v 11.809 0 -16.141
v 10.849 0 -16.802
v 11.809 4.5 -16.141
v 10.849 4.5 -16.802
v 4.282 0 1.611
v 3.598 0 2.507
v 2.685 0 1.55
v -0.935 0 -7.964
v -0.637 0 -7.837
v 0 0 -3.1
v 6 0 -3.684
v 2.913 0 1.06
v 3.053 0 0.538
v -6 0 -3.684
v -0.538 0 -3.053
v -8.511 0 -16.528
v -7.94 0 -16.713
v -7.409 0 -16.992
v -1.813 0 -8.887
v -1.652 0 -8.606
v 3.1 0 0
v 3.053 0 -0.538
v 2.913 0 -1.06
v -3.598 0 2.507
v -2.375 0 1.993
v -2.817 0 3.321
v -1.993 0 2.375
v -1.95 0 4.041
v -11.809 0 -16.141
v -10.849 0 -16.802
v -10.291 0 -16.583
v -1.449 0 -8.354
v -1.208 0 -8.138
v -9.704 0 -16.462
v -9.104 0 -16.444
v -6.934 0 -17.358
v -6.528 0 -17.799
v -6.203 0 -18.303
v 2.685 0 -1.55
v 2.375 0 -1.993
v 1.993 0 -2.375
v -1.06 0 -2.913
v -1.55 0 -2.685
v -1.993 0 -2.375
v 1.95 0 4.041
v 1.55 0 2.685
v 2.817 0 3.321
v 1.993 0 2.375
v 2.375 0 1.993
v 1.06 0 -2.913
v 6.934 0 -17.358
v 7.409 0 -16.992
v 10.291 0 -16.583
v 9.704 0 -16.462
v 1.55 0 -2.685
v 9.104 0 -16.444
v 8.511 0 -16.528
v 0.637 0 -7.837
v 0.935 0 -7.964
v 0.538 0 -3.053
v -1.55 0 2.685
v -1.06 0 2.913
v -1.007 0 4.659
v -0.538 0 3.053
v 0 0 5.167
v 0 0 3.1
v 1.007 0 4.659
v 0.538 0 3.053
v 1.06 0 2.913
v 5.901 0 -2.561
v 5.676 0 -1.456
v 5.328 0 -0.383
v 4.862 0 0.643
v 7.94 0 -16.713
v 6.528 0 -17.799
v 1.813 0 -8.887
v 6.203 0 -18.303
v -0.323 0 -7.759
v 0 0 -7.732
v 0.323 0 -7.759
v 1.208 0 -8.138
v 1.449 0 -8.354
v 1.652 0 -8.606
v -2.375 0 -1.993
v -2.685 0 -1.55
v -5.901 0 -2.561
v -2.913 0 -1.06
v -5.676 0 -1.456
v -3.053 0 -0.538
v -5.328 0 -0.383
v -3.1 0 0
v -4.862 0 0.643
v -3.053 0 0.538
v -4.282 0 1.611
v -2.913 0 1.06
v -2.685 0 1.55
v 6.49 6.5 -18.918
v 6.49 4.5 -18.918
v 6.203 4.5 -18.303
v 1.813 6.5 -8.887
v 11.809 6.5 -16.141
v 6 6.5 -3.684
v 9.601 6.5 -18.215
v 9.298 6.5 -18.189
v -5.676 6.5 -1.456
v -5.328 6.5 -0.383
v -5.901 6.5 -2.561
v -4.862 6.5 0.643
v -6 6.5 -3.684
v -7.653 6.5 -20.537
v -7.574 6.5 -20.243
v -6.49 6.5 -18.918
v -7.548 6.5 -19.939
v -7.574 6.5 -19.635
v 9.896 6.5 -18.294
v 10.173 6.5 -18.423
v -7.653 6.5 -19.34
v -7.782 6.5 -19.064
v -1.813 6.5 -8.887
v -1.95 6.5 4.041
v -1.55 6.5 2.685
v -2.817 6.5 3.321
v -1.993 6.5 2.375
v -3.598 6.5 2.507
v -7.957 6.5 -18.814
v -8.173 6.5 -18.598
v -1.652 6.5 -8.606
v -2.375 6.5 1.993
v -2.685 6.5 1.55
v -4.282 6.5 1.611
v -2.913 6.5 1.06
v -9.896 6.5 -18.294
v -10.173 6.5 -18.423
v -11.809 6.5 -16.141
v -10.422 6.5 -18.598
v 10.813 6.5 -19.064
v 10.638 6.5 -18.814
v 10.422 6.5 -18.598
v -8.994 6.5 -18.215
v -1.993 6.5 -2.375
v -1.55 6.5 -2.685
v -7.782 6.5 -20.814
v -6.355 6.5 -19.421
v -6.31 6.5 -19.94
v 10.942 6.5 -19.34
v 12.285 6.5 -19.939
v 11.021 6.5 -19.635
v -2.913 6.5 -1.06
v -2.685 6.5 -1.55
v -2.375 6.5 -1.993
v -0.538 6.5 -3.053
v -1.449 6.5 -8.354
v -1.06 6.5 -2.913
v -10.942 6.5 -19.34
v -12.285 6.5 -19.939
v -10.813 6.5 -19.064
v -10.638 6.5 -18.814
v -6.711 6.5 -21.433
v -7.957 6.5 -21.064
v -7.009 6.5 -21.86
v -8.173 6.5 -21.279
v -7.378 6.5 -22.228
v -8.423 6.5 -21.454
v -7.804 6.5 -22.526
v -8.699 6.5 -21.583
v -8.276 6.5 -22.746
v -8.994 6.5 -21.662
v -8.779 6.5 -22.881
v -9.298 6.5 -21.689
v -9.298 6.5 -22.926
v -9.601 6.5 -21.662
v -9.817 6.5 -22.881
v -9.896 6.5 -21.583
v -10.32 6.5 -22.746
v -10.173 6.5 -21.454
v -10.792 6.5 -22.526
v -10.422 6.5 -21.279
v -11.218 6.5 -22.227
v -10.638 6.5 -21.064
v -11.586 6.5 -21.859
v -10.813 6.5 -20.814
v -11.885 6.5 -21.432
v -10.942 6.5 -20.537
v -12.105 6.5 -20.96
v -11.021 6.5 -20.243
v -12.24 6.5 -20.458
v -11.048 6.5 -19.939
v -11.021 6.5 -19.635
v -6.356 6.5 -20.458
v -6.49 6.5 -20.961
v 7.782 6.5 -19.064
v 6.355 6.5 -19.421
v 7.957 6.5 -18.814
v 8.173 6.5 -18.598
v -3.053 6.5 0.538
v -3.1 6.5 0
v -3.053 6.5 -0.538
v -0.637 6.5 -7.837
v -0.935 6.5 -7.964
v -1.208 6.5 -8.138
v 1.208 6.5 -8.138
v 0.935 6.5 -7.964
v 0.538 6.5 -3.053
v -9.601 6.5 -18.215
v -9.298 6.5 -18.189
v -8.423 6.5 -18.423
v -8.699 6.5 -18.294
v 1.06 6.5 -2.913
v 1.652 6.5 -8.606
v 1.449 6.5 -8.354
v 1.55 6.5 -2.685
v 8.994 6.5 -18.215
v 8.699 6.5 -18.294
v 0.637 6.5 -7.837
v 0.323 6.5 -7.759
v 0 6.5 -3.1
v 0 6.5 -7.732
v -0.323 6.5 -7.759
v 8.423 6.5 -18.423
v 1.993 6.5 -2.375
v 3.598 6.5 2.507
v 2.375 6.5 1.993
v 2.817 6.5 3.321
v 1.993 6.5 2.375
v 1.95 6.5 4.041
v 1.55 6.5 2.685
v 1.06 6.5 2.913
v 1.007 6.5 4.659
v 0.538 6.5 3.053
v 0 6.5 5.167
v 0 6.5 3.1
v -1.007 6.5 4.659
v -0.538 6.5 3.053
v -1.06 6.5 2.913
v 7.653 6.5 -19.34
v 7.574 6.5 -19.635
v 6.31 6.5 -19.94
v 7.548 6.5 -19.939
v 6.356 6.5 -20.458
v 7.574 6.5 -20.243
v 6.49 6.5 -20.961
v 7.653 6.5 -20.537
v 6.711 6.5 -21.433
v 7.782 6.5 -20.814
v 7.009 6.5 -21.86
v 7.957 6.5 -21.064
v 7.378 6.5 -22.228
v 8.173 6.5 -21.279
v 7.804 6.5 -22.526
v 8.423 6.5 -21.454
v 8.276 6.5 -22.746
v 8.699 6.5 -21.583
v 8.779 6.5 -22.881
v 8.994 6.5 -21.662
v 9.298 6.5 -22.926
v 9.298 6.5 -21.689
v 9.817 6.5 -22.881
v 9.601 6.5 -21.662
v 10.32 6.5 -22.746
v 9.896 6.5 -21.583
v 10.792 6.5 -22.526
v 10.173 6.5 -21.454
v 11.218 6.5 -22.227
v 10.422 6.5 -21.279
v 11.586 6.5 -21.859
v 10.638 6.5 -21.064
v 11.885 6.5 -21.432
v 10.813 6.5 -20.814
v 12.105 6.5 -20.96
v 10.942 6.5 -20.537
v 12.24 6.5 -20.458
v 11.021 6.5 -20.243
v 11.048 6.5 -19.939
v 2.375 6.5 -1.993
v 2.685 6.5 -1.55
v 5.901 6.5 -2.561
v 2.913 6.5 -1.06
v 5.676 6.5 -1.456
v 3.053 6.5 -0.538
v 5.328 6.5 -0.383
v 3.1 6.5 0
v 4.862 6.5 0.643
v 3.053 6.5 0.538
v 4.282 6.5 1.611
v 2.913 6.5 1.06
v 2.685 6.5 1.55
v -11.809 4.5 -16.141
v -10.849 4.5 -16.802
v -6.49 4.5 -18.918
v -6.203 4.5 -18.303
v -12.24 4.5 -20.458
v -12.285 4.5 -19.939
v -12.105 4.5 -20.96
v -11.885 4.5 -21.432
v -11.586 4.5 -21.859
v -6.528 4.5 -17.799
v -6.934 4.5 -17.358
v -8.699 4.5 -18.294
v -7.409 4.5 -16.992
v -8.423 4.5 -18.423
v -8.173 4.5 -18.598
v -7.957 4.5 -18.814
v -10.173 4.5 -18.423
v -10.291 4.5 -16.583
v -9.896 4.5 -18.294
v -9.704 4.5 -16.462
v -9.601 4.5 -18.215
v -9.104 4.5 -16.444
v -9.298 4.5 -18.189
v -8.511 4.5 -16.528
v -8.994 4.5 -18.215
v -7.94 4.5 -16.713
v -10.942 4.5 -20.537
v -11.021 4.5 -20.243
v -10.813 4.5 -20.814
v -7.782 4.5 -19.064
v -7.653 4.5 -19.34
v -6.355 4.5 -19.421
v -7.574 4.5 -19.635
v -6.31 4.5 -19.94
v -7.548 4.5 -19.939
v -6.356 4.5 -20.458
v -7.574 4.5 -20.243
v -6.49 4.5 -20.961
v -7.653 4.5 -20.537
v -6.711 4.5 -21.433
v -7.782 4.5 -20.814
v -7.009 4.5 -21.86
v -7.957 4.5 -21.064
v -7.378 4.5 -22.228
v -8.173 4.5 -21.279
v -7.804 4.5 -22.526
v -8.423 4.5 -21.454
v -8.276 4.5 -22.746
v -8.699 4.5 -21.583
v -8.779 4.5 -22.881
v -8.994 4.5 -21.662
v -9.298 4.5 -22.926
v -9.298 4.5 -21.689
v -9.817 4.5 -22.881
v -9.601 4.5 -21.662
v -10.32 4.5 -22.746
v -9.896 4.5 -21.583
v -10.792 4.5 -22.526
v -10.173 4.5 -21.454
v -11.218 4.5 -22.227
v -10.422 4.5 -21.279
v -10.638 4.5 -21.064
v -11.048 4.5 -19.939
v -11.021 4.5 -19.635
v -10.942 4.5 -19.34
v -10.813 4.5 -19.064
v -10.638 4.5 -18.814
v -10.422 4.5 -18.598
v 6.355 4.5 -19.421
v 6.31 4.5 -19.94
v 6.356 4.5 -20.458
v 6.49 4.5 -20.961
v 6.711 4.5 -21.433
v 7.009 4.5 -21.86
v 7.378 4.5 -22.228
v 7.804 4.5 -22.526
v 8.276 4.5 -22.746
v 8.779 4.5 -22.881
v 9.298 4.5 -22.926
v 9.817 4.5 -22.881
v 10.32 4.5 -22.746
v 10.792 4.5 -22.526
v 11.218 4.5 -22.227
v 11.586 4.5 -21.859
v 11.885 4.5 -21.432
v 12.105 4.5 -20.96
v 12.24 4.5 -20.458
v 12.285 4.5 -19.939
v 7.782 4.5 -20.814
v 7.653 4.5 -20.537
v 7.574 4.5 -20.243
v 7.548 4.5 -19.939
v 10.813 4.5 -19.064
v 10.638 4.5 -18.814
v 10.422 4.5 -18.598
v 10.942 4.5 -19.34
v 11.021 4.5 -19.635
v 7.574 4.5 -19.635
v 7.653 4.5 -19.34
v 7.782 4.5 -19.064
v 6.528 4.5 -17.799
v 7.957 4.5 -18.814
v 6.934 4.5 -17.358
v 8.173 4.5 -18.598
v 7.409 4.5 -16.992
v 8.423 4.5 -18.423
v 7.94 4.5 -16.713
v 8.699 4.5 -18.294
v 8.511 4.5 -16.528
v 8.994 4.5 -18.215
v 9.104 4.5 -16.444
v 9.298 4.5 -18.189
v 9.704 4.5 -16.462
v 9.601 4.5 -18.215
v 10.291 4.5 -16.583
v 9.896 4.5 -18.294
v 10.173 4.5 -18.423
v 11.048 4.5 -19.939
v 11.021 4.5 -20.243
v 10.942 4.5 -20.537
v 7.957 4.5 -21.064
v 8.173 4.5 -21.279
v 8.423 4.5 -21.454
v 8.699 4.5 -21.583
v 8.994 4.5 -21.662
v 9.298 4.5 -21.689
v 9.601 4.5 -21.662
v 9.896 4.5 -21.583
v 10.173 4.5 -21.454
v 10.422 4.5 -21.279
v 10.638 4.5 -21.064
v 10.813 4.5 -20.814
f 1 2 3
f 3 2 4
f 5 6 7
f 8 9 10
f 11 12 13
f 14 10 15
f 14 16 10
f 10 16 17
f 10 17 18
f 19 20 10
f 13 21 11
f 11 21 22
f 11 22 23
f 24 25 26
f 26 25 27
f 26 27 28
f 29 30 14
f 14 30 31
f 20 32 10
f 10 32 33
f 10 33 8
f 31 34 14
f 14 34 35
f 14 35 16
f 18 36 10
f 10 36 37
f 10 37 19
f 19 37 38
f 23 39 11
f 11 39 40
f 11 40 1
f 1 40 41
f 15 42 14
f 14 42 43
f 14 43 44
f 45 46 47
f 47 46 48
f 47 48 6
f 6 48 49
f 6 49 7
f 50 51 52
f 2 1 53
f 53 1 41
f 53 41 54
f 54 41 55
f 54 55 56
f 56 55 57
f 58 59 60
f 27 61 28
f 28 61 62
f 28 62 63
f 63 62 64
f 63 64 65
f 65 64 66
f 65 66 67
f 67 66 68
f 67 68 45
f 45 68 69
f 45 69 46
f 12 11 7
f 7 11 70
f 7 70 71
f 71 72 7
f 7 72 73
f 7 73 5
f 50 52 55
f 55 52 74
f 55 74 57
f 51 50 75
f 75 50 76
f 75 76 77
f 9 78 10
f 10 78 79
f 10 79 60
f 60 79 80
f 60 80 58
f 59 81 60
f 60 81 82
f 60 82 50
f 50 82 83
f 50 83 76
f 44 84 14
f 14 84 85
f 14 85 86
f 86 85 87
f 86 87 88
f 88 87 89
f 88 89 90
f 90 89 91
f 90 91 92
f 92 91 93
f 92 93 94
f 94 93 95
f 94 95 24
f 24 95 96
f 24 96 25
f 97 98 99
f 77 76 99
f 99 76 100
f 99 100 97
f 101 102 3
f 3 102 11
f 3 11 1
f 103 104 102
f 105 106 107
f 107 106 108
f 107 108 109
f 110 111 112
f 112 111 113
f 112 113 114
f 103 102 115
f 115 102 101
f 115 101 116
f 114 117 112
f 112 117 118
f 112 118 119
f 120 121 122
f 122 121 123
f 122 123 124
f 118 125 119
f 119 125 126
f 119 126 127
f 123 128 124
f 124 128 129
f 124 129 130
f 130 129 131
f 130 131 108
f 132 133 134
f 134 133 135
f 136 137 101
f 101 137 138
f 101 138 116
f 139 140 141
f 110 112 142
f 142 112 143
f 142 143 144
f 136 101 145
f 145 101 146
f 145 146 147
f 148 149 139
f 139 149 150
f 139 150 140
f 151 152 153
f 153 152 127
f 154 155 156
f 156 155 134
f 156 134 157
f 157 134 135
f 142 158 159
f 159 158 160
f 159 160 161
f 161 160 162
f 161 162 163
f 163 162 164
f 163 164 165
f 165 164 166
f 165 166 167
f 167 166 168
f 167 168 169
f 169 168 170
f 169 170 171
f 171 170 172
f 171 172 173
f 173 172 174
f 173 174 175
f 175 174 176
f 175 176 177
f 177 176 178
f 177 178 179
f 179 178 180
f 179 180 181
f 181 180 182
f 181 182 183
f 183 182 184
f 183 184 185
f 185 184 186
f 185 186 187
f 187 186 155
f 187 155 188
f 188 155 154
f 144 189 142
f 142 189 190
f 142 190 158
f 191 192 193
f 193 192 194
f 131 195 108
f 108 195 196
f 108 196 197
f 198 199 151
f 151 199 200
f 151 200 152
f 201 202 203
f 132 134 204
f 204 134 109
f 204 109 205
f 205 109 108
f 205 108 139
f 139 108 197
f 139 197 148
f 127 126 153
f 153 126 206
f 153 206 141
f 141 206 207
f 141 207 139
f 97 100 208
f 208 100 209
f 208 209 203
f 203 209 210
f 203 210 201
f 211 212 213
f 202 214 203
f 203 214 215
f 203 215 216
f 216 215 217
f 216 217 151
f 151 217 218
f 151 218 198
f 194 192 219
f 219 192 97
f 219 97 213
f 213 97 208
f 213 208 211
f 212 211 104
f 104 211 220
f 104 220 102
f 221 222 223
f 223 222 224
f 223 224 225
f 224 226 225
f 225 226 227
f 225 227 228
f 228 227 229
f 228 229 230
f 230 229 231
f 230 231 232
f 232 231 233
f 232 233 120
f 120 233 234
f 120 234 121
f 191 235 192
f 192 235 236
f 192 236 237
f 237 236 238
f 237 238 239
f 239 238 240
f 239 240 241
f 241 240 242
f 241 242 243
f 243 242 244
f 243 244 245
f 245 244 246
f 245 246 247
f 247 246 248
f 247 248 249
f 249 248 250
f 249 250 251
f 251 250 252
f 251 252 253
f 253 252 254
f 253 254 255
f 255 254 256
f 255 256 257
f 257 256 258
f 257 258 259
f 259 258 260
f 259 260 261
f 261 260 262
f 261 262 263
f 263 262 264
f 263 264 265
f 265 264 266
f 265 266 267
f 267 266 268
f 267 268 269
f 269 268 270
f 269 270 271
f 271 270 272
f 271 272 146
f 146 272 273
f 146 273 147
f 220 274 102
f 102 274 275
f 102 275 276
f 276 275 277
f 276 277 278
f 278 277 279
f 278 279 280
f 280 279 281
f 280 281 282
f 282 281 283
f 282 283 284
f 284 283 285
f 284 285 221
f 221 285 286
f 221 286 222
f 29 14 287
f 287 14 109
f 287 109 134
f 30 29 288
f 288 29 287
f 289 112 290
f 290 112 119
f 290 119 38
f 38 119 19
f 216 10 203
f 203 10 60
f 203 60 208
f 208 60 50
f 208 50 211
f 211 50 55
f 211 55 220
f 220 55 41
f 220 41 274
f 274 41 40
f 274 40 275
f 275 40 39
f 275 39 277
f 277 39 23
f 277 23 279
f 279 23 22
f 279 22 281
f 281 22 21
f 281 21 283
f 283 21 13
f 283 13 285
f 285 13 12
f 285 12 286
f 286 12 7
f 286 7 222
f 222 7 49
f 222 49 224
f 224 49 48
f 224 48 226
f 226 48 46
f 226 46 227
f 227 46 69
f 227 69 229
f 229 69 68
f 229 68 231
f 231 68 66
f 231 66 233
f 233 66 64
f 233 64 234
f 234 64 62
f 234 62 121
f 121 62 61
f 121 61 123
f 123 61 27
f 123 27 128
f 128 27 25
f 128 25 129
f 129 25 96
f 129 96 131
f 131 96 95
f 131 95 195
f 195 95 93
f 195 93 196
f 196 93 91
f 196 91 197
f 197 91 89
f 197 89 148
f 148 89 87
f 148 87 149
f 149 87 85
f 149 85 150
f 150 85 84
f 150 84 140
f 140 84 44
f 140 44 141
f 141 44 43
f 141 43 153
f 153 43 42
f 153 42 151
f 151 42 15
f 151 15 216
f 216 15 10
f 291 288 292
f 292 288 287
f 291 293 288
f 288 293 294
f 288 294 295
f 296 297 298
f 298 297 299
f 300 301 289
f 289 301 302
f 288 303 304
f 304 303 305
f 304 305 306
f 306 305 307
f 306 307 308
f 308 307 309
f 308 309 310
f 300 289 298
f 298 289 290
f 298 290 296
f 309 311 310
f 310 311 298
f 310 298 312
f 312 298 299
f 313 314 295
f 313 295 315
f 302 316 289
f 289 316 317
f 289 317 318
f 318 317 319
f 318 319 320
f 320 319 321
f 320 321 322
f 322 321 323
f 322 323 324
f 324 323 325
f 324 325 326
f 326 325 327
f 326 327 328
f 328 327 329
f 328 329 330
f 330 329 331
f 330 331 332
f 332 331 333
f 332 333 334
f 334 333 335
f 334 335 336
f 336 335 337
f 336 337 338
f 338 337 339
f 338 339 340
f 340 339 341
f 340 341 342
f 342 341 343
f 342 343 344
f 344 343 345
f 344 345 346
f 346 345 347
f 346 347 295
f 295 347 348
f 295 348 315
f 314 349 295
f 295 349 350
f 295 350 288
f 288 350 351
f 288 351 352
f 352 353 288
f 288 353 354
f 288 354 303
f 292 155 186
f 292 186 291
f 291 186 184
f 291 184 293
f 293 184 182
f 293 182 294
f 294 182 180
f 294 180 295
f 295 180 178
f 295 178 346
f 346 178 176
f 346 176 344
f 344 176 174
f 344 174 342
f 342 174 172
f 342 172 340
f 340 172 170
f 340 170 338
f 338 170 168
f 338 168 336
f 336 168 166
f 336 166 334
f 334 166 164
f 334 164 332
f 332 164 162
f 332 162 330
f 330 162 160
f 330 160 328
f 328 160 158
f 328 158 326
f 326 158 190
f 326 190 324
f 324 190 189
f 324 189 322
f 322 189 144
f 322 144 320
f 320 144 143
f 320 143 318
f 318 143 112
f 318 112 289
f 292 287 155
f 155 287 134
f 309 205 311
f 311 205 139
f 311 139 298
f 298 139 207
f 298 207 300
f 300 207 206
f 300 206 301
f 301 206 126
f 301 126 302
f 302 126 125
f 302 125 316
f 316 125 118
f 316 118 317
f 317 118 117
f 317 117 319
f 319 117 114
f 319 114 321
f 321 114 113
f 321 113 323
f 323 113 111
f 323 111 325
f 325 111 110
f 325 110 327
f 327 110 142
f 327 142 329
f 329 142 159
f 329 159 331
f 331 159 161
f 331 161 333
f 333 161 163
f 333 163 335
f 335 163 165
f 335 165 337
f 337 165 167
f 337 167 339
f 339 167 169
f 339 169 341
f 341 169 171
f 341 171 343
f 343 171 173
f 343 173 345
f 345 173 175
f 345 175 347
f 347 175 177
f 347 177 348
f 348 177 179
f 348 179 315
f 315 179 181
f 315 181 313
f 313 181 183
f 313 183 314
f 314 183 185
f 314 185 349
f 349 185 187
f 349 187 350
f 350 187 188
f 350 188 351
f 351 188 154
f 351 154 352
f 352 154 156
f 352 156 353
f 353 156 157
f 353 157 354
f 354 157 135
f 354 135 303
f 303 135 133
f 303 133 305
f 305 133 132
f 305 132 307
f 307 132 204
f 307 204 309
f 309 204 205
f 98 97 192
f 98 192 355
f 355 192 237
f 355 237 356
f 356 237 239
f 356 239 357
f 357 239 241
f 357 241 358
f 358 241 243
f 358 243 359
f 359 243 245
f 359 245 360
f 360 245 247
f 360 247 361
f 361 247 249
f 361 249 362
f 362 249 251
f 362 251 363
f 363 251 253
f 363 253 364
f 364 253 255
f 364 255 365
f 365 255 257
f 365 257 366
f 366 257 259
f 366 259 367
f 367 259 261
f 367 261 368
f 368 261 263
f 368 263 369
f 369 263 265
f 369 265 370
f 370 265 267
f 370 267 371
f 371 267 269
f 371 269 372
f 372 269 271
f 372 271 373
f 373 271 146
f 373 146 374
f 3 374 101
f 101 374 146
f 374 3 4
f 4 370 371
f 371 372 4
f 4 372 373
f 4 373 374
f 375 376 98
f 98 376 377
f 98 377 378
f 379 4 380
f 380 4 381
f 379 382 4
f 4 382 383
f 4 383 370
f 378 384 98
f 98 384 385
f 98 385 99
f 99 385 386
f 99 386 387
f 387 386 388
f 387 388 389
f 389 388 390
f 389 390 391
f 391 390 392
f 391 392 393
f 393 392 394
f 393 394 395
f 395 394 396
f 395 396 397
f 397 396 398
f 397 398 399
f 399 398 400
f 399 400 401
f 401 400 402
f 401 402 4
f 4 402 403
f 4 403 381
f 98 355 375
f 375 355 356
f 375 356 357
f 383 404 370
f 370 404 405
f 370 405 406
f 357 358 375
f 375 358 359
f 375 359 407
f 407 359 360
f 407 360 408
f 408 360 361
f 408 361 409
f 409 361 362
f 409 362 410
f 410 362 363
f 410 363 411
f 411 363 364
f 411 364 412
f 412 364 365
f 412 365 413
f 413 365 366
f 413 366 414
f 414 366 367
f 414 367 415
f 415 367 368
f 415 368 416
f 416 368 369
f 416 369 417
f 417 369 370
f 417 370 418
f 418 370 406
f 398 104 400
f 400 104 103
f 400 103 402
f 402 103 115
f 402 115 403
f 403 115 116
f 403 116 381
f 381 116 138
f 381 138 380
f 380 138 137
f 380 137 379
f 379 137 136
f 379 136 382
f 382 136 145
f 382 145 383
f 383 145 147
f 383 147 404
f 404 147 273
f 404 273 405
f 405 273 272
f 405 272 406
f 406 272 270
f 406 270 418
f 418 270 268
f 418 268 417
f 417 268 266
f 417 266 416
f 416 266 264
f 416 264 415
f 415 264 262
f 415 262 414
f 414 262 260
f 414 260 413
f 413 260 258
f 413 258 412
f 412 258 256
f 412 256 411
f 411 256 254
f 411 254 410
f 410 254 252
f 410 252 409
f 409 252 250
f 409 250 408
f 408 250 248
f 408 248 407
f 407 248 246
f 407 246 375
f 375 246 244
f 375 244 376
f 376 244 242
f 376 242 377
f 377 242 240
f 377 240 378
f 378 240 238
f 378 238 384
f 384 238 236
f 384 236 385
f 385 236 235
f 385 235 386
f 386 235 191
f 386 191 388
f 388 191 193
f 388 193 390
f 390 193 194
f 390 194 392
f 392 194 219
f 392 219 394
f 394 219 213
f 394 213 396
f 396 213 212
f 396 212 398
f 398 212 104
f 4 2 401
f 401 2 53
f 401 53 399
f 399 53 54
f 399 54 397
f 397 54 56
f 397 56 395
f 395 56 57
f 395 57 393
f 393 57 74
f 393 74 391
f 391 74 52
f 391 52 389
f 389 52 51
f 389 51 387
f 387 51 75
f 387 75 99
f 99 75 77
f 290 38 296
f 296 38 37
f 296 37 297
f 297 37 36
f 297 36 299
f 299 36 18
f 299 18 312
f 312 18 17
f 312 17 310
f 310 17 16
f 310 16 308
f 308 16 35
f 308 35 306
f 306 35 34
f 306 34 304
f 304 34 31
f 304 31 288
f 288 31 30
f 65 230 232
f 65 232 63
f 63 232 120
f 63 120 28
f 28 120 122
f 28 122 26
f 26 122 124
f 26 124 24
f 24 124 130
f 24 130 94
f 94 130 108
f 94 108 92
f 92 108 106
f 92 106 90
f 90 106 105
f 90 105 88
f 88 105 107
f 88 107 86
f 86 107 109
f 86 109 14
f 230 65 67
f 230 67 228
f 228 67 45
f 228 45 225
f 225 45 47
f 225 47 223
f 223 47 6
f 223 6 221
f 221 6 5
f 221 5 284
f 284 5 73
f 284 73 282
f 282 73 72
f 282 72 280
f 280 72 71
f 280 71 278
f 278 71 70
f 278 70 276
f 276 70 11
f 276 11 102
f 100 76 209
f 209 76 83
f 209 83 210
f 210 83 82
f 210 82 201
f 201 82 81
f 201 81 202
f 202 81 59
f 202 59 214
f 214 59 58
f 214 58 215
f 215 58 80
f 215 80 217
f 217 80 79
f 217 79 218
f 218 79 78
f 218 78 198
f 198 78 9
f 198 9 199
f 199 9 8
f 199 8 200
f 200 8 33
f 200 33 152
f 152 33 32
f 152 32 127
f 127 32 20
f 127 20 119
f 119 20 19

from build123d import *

# Parameters (mm, degrees)
BOSS_EXTRUDE1_DEPTH = 6.5
SKETCH2_R           = 3.1
CUT_EXTRUDE1_DEPTH  = 24.228931445
SKETCH3_R           = 1.75
BOSS_EXTRUDE2_DEPTH = 2
CUT_EXTRUDE2_DEPTH  = 4.5
FILLET1_R           = 10
FILLET2_R           = 2


with BuildPart() as part:
    # Sketch1 → Boss-Extrude1 (new body)
    with BuildSketch(Plane(origin=(0, 0, 0), x_dir=(1, 0, 0), z_dir=(0, 1, 0))):
        with BuildLine():
            Line((-6.489945331, 18.917732676), (0, 5))
            Line((0, 5), (6.489945331, 18.917732676))
            ThreePointArc((6.489945331, 18.917732676), (9.254177969, 17.730205586), (11.809007007, 16.141479285))
            Line((11.809007007, 16.141479285), (6, 3.684023558))
            Line((6, 3.684023558), (6, -6))
            Line((6, -6), (-6, -6))
            Line((-6, -6), (-6, 3.684023558))
            Line((-6, 3.684023558), (-11.809007007, 16.141479285))
            ThreePointArc((-11.809007007, 16.141479285), (-9.254177969, 17.730205586), (-6.489945331, 18.917732676))
        make_face()
    extrude(amount=BOSS_EXTRUDE1_DEPTH)

    # Sketch2 → Cut-Extrude1 (cut, through all)
    with BuildSketch(Plane.XZ):
        with Locations(Location((0, 0, 0), (0, 0, 270))):
            Circle(SKETCH2_R)
    extrude(amount=-CUT_EXTRUDE1_DEPTH, mode=Mode.SUBTRACT)

    # Sketch3 → Boss-Extrude2 (add)
    # profile 1 of 2: a face of its own
    with BuildSketch(Plane(origin=(0, 6.5, 0), x_dir=(1, 0, 0), z_dir=(0, 1, 0))):
        with BuildLine():
            Line((12.285151677, 19.938771315), (11.809007007, 16.141479285))
            Line((11.809007007, 16.141479285), (8.152317162, 17.179463846))
            ThreePointArc((8.152317162, 17.179463846), (7.638707607, 22.42342918), (12.285151677, 19.938771315))
        make_face()
        with Locations(Location((9.297601758, 19.938771315, 0), (0, 0, 270))):
            Circle(SKETCH3_R, mode=Mode.SUBTRACT)
    # profile 2 of 2: a face of its own
    with BuildSketch(Plane(origin=(0, 6.5, 0), x_dir=(1, 0, 0), z_dir=(0, 1, 0))):
        with BuildLine():
            Line((-11.809007007, 16.141479285), (-8.152317162, 17.179463846))
            ThreePointArc((-8.152317162, 17.179463846), (-7.638707607, 22.42342918), (-12.285151677, 19.938771315))
            Line((-12.285151677, 19.938771315), (-11.809007007, 16.141479285))
        make_face()
        with Locations(Location((-9.297601758, 19.938771315, 0), (0, 0, 90))):
            Circle(SKETCH3_R, mode=Mode.SUBTRACT)
    extrude(amount=-BOSS_EXTRUDE2_DEPTH)

    # Sketch5 → Cut-Extrude2 (cut)
    with BuildSketch(Plane.XZ):
        with BuildLine():
            ThreePointArc((10.849326324, -16.801551069), (8.221259471, -16.608382857), (6.203329268, -18.303082545))
            Line((6.203329268, -18.303082545), (6.489945331, -18.917732676))
            ThreePointArc((6.489945331, -18.917732676), (8.733964823, -17.992161028), (10.849326324, -16.801551069))
        make_face()
        with BuildLine():
            Line((6.489945331, -18.917732676), (6.203329268, -18.303082545))
            ThreePointArc((6.203329268, -18.303082545), (8.454973049, -23.335825459), (12.797601758, -19.938771315))
            ThreePointArc((12.797601758, -19.938771315), (12.270902616, -18.092293043), (10.849326324, -16.801551069))
            ThreePointArc((10.849326324, -16.801551069), (8.733964823, -17.992161028), (6.489945331, -18.917732676))
        make_face()
        with BuildLine():
            ThreePointArc((-10.849326324, -16.801551069), (-11.144080031, -22.912072172), (-5.797601758, -19.938771315))
            ThreePointArc((-5.797601758, -19.938771315), (-5.900547614, -19.096142606), (-6.203329268, -18.303082545))
            Line((-6.203329268, -18.303082545), (-6.489945331, -18.917732676))
            ThreePointArc((-6.489945331, -18.917732676), (-8.733964823, -17.992161028), (-10.849326324, -16.801551069))
        make_face()
        with BuildLine():
            Line((-6.489945331, -18.917732676), (-6.203329268, -18.303082545))
            ThreePointArc((-6.203329268, -18.303082545), (-8.221259471, -16.608382857), (-10.849326324, -16.801551069))
            ThreePointArc((-10.849326324, -16.801551069), (-8.733964823, -17.992161028), (-6.489945331, -18.917732676))
        make_face()
    extrude(amount=-CUT_EXTRUDE2_DEPTH, mode=Mode.SUBTRACT)

    # Fillet1
    # the kernel refuses this fillet: 10 mm, written as the material it takes off along each edge
    with BuildSketch(Plane(origin=(6, -24.987516744, 6), x_dir=(-1, 0, 0), z_dir=(0, 1, 0))) as fillet1_piece_1:
        with BuildLine():
            CenterArc((9.995006698, -10), FILLET1_R, 90, 88.189286954)
            Line((0, -9.684023558), (-0.199900134, -9.677704029))
            ThreePointArc((-0.199900134, -9.677704029), (-0.2, -4.842011779), (-0.2, 0))
            Line((-0.2, 0), (0, 0.2))
            Line((0, 0.2), (9.995006698, 0.2))
            Line((9.995006698, 0.2), (9.995006698, 0))
        make_face()
    extrude(amount=56.475033489, mode=Mode.SUBTRACT)
    with BuildSketch(Plane(origin=(-6, -24.987516744, 6), x_dir=(0, 0, -1), z_dir=(0, 1, 0))) as fillet1_piece_2:
        with BuildLine():
            CenterArc((10, -9.995006698), FILLET1_R, 91.810713046, 88.189286954)
            Line((0, -9.995006698), (-0.2, -9.995006698))
            Line((-0.2, -9.995006698), (-0.2, 0))
            Line((-0.2, 0), (0, 0.2))
            ThreePointArc((0, 0.2), (4.842011779, 0.2), (9.677704029, 0.199900134))
            Line((9.677704029, 0.199900134), (9.684023558, 0))
        make_face()
    extrude(amount=56.475033489, mode=Mode.SUBTRACT)

    # Fillet2
    fillet2_edges = [part.edges().sort_by_distance(p)[0] for p in [
        (0, 3.25, -5),
    ]]
    fillet(fillet2_edges, radius=FILLET2_R)


solid = part.part
